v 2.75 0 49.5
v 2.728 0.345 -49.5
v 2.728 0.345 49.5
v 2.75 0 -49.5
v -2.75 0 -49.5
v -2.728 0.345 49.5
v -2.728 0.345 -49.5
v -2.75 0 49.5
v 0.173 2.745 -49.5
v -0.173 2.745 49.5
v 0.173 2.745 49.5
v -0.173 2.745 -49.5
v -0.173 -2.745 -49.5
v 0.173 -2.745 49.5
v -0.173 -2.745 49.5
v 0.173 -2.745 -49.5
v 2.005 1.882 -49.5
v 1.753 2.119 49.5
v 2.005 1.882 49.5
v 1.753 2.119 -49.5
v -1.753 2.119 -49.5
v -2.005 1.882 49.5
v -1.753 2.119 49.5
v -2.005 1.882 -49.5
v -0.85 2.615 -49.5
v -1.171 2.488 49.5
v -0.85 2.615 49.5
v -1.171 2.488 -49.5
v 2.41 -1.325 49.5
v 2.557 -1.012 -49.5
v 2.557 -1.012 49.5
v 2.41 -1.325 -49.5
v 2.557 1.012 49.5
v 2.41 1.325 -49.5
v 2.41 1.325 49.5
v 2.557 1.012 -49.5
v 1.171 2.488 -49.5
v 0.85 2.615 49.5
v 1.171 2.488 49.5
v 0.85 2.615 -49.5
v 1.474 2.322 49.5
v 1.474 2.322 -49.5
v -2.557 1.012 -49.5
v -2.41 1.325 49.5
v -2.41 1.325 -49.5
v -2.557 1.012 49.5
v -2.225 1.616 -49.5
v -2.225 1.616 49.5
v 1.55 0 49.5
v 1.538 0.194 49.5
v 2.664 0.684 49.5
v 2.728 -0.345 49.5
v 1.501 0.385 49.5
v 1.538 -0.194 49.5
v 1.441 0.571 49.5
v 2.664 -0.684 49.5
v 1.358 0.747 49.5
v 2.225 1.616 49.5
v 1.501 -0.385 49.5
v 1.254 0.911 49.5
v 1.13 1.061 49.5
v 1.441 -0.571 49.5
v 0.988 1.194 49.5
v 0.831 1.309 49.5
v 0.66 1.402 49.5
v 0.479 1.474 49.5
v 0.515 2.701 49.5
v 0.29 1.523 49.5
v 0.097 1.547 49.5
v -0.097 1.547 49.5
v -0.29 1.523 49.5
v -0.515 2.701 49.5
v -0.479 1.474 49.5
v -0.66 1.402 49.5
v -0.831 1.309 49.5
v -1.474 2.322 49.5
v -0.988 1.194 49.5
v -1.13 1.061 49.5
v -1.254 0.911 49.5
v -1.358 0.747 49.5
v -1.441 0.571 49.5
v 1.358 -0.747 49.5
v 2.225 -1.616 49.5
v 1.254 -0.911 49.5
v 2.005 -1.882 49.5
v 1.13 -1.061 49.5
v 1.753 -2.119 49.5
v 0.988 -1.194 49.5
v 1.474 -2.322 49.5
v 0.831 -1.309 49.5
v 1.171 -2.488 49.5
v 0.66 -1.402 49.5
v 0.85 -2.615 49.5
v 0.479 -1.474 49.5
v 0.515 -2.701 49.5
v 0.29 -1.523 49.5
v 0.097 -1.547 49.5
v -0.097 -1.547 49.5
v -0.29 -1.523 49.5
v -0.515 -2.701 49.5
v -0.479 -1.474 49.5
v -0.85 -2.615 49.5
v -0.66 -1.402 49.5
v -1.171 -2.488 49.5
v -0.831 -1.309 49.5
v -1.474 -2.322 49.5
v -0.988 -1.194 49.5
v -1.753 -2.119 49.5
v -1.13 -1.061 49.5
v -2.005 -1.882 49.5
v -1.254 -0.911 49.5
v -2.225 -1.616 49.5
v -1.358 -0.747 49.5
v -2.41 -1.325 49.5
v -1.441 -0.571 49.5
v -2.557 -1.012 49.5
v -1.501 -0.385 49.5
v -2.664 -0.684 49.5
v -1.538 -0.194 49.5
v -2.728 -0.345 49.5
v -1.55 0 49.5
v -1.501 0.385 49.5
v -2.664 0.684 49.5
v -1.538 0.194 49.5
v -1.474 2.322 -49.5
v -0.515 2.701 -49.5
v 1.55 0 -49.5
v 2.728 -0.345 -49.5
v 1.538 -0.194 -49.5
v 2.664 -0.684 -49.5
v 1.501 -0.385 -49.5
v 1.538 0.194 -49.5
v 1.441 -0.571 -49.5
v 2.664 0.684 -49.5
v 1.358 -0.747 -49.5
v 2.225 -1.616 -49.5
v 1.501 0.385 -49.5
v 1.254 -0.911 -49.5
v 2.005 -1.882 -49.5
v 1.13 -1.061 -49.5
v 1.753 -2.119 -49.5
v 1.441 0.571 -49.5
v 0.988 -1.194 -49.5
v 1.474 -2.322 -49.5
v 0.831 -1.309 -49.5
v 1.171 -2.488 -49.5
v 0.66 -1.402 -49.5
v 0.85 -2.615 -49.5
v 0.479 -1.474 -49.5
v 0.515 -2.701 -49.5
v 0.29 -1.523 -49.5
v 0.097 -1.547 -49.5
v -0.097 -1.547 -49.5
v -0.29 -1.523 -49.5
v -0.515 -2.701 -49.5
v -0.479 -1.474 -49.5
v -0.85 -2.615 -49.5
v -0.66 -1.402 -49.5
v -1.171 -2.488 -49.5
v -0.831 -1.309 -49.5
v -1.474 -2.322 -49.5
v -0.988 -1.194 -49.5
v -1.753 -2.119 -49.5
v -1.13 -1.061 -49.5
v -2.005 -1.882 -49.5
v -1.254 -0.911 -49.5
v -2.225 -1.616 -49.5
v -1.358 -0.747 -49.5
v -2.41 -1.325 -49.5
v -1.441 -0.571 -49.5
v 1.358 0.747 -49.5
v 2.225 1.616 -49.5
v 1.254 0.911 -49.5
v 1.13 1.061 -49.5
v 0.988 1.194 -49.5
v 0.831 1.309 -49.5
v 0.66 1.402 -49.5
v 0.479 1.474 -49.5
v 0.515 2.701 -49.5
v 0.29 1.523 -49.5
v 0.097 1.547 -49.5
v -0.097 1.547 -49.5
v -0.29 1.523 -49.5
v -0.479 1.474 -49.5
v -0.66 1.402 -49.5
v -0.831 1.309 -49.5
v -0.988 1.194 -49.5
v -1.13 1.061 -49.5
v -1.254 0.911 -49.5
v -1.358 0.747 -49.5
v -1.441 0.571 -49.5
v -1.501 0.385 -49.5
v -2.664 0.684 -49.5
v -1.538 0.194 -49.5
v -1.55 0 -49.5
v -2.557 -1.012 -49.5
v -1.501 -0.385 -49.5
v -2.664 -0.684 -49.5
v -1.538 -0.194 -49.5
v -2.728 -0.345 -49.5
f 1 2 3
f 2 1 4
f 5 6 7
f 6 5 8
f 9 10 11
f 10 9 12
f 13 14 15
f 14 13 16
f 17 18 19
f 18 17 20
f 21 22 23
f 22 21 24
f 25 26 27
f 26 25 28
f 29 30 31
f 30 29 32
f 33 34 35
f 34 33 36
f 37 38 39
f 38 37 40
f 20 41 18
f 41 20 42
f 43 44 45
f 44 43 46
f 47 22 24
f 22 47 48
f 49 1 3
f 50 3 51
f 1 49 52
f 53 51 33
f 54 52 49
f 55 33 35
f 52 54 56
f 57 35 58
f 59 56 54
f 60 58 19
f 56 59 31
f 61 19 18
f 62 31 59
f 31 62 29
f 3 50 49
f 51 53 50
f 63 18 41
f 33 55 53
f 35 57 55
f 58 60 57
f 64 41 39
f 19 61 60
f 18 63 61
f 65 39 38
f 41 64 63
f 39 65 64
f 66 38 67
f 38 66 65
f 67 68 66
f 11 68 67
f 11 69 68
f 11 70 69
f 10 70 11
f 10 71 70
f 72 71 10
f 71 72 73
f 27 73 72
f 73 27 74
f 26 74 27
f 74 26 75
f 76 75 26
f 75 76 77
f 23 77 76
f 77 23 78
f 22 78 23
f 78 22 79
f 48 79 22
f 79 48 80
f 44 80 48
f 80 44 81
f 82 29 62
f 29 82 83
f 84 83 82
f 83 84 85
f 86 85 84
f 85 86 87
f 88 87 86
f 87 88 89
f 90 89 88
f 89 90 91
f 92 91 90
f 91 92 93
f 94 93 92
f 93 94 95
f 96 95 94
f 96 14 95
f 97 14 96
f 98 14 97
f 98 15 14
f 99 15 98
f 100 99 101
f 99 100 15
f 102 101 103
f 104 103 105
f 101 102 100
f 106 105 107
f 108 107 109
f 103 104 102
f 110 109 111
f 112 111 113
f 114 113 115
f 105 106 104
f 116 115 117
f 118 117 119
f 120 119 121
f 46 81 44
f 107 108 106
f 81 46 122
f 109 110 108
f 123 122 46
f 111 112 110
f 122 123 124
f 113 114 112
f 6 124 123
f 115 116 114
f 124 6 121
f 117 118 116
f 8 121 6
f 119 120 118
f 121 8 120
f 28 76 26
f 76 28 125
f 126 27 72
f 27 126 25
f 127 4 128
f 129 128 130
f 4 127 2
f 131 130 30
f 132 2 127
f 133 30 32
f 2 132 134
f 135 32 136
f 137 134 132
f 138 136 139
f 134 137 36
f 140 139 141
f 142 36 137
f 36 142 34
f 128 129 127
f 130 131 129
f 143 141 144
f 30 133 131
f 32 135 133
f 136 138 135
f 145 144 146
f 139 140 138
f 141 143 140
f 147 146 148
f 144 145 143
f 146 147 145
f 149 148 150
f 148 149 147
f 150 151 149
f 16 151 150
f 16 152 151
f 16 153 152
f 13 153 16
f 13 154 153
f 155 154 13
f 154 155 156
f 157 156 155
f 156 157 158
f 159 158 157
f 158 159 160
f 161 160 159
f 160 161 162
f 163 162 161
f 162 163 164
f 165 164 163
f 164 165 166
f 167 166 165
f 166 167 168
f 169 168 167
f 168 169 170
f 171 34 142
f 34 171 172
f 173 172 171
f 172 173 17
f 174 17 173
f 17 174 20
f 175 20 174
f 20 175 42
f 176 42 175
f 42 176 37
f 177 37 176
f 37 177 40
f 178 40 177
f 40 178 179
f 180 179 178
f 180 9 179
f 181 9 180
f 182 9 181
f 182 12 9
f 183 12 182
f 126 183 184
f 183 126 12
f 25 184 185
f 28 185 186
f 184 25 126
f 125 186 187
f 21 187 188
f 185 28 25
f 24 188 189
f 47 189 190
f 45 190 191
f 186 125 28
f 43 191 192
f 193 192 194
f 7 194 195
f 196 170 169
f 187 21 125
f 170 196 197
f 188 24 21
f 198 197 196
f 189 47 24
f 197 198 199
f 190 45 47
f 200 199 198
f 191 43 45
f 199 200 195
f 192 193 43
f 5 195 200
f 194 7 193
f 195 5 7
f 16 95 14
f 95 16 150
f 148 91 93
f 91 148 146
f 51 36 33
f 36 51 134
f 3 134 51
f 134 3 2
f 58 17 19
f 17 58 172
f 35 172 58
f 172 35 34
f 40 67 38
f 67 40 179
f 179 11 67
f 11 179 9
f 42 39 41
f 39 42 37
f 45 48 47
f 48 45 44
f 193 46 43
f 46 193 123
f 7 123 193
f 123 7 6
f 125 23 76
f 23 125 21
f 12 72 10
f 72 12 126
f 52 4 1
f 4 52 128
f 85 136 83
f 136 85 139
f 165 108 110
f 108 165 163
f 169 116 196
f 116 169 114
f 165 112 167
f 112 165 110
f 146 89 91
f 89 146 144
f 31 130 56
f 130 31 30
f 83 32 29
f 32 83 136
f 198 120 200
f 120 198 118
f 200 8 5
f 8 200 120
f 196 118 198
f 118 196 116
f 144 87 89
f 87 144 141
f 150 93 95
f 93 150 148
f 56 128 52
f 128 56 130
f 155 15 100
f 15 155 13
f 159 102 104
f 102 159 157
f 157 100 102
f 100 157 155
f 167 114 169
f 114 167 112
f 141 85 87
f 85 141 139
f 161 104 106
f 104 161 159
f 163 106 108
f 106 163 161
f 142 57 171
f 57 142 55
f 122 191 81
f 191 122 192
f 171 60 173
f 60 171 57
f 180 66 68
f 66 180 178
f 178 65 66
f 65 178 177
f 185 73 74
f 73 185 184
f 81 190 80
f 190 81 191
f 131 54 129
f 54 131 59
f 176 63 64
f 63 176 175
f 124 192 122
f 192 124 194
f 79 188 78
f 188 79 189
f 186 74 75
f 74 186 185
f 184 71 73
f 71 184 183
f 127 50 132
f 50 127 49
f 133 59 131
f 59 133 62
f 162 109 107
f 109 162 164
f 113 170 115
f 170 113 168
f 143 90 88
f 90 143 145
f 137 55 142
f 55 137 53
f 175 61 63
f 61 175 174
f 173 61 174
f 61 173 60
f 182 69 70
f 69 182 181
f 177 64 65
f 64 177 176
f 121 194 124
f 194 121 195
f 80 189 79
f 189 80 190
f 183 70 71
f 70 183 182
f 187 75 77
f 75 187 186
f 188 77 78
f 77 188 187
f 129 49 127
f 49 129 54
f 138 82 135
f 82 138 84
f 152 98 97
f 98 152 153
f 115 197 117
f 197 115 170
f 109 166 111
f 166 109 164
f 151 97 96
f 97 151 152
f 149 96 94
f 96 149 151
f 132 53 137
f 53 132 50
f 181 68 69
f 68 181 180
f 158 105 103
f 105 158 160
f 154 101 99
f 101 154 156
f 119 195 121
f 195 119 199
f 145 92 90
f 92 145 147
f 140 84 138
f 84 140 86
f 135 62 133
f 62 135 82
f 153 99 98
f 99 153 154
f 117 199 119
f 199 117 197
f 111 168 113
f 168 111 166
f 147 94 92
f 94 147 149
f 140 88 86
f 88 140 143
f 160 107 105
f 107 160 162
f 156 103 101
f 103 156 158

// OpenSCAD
$fn = 50;


difference() {
	union() {
		translate(v = [0, 0, -49.5000000000]) {
			cylinder(h = 99, r = 2.7500000000);
		}
	}
	union() {
		translate(v = [0, 0, -100.0000000000]) {
			cylinder(h = 200, r = 1.5500000000);
		}
	}
}
